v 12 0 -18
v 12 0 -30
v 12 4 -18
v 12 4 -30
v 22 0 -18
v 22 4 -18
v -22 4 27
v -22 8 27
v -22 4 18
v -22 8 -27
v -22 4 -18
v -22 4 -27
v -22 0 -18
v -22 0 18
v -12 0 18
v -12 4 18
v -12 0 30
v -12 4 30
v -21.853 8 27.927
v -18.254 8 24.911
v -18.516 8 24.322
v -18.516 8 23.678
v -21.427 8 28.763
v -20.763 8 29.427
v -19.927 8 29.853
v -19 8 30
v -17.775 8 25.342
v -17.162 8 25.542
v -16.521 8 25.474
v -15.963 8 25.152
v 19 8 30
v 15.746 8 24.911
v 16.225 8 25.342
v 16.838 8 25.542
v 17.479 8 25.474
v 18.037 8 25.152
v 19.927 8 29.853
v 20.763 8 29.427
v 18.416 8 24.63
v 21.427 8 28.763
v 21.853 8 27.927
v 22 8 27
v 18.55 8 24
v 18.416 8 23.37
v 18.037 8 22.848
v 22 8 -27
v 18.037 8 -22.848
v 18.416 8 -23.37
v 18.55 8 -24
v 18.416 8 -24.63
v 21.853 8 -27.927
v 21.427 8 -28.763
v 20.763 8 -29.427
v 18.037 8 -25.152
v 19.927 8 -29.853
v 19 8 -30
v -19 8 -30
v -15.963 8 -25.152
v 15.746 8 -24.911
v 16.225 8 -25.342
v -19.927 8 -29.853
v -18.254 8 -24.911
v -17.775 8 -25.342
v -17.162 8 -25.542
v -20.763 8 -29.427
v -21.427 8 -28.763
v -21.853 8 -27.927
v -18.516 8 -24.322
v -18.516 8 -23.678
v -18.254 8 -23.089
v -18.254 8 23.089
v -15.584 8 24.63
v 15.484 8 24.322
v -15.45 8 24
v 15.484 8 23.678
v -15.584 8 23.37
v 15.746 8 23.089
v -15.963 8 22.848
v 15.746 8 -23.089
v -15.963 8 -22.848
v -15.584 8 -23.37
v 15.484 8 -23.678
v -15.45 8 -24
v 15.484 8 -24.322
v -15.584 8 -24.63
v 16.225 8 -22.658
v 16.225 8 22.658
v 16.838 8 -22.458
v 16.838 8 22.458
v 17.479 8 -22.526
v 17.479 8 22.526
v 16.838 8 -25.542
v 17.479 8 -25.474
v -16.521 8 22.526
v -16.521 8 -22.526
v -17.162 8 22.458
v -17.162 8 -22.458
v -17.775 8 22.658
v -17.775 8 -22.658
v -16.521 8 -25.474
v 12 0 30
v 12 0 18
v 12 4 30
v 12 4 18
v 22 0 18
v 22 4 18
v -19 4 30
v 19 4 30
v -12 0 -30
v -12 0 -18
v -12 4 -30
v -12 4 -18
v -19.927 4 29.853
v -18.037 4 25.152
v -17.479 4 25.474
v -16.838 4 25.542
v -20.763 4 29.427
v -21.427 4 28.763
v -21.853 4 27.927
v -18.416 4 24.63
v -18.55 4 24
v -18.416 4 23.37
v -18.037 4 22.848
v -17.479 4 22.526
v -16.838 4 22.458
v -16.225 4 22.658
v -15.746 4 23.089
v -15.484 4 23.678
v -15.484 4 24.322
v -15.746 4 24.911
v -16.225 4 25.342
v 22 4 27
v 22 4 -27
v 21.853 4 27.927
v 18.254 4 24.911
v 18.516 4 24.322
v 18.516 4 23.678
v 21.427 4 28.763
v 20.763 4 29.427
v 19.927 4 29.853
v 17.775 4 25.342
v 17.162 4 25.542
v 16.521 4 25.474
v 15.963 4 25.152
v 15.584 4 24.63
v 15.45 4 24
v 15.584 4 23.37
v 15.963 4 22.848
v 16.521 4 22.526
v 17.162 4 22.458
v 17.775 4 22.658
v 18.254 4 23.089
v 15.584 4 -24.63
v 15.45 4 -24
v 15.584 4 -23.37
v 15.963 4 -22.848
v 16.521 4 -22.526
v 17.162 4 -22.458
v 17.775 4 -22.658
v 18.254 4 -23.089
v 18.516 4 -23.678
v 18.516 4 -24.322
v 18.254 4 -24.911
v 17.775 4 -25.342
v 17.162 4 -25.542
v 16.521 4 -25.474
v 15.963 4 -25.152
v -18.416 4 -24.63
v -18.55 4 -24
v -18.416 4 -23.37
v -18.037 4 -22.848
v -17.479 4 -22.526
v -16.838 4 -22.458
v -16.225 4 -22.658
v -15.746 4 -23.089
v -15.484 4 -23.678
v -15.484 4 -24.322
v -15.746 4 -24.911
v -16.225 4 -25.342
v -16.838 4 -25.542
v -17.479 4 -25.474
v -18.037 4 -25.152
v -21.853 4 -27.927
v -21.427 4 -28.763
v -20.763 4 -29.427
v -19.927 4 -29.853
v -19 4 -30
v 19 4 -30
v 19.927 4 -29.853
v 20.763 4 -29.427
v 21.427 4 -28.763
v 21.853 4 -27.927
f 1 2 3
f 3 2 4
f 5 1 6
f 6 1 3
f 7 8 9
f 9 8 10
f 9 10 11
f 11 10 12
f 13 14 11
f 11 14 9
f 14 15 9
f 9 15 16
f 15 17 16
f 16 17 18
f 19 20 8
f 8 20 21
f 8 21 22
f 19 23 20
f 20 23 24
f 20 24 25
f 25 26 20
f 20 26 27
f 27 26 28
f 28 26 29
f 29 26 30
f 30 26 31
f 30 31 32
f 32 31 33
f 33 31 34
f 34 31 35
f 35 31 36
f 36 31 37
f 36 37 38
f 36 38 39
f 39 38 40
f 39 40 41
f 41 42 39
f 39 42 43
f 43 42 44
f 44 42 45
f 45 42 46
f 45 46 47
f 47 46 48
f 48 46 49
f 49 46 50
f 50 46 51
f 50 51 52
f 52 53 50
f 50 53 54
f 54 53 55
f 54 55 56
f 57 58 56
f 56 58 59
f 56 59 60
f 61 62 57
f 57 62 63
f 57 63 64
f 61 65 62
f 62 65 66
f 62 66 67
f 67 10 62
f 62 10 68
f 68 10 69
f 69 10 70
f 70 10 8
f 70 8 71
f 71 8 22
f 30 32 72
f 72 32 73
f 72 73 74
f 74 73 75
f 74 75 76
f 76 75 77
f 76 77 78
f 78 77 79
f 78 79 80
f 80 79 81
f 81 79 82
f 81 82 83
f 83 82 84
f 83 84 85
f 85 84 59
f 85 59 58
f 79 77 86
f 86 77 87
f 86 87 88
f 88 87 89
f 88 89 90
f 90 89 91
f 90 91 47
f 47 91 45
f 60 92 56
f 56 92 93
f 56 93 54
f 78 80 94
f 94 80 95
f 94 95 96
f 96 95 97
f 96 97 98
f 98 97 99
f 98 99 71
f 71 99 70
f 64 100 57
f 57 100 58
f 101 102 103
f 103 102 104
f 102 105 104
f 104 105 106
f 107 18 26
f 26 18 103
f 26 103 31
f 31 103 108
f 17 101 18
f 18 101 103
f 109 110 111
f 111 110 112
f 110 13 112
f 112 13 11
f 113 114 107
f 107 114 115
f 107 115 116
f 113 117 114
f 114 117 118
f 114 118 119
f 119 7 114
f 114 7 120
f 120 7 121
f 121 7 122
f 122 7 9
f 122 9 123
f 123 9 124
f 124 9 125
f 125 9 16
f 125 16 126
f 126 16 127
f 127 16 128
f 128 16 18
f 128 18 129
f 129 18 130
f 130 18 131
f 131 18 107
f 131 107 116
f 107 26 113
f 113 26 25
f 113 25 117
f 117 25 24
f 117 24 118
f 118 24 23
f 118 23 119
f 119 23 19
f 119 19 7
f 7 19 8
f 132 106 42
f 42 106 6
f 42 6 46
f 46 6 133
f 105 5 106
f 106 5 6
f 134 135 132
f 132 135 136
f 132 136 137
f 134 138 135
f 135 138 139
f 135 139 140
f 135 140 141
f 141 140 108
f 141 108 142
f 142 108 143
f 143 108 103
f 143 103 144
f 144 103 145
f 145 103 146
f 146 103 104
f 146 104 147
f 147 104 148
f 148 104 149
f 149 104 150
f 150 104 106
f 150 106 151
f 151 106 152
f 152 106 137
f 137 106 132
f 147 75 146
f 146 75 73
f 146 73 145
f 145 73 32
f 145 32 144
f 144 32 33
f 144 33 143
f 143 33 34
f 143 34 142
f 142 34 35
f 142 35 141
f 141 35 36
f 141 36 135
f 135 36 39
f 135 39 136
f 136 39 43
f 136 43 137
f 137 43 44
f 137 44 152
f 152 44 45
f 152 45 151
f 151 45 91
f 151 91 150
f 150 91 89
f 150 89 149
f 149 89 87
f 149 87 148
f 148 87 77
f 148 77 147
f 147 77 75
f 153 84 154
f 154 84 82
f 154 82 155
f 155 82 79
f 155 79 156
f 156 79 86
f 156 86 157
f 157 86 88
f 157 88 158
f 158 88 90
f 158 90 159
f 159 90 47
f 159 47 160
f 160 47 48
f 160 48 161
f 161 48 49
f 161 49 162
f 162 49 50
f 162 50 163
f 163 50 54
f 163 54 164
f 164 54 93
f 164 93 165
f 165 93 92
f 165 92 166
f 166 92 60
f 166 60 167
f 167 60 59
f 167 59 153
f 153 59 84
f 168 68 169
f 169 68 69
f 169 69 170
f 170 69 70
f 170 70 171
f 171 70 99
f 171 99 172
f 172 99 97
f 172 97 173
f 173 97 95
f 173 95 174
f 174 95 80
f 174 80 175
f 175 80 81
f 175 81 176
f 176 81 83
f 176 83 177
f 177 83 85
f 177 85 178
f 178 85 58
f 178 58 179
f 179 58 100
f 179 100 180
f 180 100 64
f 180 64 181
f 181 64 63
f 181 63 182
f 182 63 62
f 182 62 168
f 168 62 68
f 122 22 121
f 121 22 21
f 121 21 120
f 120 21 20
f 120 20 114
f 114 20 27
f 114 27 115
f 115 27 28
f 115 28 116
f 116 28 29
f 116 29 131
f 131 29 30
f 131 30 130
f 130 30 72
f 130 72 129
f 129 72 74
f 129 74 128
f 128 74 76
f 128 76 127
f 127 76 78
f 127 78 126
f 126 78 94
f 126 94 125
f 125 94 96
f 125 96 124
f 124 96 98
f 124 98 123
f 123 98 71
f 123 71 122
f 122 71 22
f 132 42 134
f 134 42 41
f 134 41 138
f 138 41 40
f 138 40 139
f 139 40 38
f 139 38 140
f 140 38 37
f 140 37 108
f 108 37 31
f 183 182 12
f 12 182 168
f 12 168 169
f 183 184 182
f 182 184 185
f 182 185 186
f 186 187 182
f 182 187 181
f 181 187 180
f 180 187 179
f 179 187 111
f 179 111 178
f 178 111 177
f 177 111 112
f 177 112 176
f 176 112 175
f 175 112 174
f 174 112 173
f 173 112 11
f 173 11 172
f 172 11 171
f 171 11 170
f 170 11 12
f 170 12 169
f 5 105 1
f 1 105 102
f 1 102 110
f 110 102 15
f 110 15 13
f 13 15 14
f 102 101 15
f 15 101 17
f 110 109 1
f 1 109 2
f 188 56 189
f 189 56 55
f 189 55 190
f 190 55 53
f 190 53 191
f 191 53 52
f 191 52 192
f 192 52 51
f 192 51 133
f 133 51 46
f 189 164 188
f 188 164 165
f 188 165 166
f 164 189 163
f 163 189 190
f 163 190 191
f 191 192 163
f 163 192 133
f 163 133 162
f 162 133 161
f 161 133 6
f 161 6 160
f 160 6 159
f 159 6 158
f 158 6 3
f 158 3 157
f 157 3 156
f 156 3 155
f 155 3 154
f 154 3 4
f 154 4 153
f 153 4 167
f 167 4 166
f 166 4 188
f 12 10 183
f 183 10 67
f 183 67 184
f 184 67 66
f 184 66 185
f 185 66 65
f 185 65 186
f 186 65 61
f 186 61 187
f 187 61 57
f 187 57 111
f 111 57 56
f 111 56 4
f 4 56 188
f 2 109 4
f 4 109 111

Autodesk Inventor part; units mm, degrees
ref_plane "YZ Plane" through (0, 0, 0) normal (1, 0, 0) x (0, 1, 0)
ref_plane "XZ Plane" through (0, 0, 0) normal (0, 1, 0) x (-1, 0, 0)
ref_plane "XY Plane" through (0, 0, 0) normal (0, 0, 1) x (1, 0, 0)
sketch "Sketch1" plane through (0, 0, 0) normal (0, 1, 0) x (-1, 0, 0)
  line L0 (22, 30) -> (-22, 30)
  line L1 (-22, 30) -> (-22, -30)
  line L2 (-22, -30) -> (22, -30)
  line L3 (22, -30) -> (22, 30)
  line L4 (22, 30) -> (-22, -30) construction
  line L5 (-22, 30) -> (22, -30) construction
  point P0 (0, 0)
  dimension "d0" = 44
  dimension "d1" = 60
extrude "Extrusion1" add sketch "Sketch1" along normal blind 8
sketch "Sketch4" plane through (0, 8, 0) normal (0, 1, 0) x (1, 0, 0)
  circle A0 centre (-17, -24) radius 1.55
  circle A1 centre (17, 24) radius 1.55
  circle A2 centre (17, -24) radius 1.55
  circle A3 centre (-17, 24) radius 1.55
  point P0 (0, 0)
  dimension "d6" = 3.1
  dimension "d7" = 3.1
  dimension "d8" = 3.1
  dimension "d9" = 3.1
  dimension "d10" = 17
  dimension "d11" = 24
  dimension "d12" = 17
  dimension "d13" = 17
  dimension "d14" = 17
  dimension "d15" = 24
  dimension "d16" = 24
  dimension "d17" = 24
hole "Hole1" at (-17, 8, 24) at (-17, 8, -24) at (17, 8, -24) at (17, 8, 24) direction (0, -1, 0) diameter 3.1 depth 8 tip angle 118
sketch "Sketch5" plane through (0, 0, 0) normal (0, -1, 0) x (1, 0, 0)
  line L0 (-12, -18) -> (-22, -18)
  line L1 (-22, -18) -> (-22, -30)
  line L2 (-22, -30) -> (-12, -30)
  line L3 (-12, -30) -> (-12, -18)
  line L4 (22, -18) -> (12, -18)
  line L5 (12, -18) -> (12, -30)
  line L6 (12, -30) -> (22, -30)
  line L7 (22, -30) -> (22, -18)
  line L8 (22, 30) -> (12, 30)
  line L9 (12, 30) -> (12, 18)
  line L10 (12, 18) -> (22, 18)
  line L11 (22, 18) -> (22, 30)
  line L12 (-12, 30) -> (-22, 30)
  line L13 (-22, 30) -> (-22, 18)
  line L14 (-22, 18) -> (-12, 18)
  line L15 (-12, 18) -> (-12, 30)
  line L16 (-22, -30) -> (-22, 30) projected
  line L17 (22, -30) -> (-22, -30) projected
  line L18 (22, 30) -> (22, -30) projected
  line L19 (-22, 30) -> (22, 30) projected
  point P0 (0, 0)
  dimension "d25" = 10
  dimension "d26" = 12
  dimension "d27" = 10
  dimension "d28" = 12
  dimension "d29" = 10
  dimension "d30" = 12
  dimension "d31" = 10
  dimension "d32" = 12
extrude "Extrusion2" cut sketch "Sketch5" against normal blind 4 contours L3 L2 L1 L0 | L13 L12 L15 L14 | L5 L4 L7 L6 | L8 L11 L10 L9
fillet "Fillet1" radius 3 4 edges at (22, 6, -30) (-22, 6, -30) (22, 6, 30) (-22, 6, 30)
equation "\"d12\" = d10"
equation "\"d13\" = d10"
equation "\"d14\" = d10"
equation "\"d15\" = d11"
equation "\"d16\" = d11"
equation "\"d17\" = d11"
equation "\"d27\" = d25"
equation "\"d28\" = d26"
equation "\"d29\" = d25"
equation "\"d30\" = d26"
equation "\"d31\" = d25"
equation "\"d32\" = d26"
properties part number "motor_driver_support"
